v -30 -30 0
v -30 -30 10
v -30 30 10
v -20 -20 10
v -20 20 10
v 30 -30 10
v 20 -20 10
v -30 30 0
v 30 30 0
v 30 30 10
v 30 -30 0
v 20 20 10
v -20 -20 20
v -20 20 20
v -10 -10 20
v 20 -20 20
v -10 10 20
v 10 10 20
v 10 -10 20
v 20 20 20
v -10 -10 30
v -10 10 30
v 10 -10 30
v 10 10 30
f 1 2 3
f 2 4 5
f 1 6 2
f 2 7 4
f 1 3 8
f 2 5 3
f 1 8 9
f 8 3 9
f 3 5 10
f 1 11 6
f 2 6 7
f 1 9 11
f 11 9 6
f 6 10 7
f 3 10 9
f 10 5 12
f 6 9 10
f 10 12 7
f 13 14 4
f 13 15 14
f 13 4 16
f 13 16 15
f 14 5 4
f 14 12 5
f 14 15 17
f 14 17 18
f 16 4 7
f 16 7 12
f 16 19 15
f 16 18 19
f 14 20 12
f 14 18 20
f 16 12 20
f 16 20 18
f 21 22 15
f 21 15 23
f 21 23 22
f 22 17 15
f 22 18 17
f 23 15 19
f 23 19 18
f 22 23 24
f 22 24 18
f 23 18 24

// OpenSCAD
// 3段の階段状ピラミッド
// 各段は中心を揃えて積み上げる

step_height = 10;
sizes = [60, 40, 20];

module stepped_pyramid() {
    for (i = [0 : len(sizes) - 1]) {
        translate([0, 0, i * step_height + step_height / 2])
            cube([sizes[i], sizes[i], step_height], center = true);
    }
}

stepped_pyramid();
